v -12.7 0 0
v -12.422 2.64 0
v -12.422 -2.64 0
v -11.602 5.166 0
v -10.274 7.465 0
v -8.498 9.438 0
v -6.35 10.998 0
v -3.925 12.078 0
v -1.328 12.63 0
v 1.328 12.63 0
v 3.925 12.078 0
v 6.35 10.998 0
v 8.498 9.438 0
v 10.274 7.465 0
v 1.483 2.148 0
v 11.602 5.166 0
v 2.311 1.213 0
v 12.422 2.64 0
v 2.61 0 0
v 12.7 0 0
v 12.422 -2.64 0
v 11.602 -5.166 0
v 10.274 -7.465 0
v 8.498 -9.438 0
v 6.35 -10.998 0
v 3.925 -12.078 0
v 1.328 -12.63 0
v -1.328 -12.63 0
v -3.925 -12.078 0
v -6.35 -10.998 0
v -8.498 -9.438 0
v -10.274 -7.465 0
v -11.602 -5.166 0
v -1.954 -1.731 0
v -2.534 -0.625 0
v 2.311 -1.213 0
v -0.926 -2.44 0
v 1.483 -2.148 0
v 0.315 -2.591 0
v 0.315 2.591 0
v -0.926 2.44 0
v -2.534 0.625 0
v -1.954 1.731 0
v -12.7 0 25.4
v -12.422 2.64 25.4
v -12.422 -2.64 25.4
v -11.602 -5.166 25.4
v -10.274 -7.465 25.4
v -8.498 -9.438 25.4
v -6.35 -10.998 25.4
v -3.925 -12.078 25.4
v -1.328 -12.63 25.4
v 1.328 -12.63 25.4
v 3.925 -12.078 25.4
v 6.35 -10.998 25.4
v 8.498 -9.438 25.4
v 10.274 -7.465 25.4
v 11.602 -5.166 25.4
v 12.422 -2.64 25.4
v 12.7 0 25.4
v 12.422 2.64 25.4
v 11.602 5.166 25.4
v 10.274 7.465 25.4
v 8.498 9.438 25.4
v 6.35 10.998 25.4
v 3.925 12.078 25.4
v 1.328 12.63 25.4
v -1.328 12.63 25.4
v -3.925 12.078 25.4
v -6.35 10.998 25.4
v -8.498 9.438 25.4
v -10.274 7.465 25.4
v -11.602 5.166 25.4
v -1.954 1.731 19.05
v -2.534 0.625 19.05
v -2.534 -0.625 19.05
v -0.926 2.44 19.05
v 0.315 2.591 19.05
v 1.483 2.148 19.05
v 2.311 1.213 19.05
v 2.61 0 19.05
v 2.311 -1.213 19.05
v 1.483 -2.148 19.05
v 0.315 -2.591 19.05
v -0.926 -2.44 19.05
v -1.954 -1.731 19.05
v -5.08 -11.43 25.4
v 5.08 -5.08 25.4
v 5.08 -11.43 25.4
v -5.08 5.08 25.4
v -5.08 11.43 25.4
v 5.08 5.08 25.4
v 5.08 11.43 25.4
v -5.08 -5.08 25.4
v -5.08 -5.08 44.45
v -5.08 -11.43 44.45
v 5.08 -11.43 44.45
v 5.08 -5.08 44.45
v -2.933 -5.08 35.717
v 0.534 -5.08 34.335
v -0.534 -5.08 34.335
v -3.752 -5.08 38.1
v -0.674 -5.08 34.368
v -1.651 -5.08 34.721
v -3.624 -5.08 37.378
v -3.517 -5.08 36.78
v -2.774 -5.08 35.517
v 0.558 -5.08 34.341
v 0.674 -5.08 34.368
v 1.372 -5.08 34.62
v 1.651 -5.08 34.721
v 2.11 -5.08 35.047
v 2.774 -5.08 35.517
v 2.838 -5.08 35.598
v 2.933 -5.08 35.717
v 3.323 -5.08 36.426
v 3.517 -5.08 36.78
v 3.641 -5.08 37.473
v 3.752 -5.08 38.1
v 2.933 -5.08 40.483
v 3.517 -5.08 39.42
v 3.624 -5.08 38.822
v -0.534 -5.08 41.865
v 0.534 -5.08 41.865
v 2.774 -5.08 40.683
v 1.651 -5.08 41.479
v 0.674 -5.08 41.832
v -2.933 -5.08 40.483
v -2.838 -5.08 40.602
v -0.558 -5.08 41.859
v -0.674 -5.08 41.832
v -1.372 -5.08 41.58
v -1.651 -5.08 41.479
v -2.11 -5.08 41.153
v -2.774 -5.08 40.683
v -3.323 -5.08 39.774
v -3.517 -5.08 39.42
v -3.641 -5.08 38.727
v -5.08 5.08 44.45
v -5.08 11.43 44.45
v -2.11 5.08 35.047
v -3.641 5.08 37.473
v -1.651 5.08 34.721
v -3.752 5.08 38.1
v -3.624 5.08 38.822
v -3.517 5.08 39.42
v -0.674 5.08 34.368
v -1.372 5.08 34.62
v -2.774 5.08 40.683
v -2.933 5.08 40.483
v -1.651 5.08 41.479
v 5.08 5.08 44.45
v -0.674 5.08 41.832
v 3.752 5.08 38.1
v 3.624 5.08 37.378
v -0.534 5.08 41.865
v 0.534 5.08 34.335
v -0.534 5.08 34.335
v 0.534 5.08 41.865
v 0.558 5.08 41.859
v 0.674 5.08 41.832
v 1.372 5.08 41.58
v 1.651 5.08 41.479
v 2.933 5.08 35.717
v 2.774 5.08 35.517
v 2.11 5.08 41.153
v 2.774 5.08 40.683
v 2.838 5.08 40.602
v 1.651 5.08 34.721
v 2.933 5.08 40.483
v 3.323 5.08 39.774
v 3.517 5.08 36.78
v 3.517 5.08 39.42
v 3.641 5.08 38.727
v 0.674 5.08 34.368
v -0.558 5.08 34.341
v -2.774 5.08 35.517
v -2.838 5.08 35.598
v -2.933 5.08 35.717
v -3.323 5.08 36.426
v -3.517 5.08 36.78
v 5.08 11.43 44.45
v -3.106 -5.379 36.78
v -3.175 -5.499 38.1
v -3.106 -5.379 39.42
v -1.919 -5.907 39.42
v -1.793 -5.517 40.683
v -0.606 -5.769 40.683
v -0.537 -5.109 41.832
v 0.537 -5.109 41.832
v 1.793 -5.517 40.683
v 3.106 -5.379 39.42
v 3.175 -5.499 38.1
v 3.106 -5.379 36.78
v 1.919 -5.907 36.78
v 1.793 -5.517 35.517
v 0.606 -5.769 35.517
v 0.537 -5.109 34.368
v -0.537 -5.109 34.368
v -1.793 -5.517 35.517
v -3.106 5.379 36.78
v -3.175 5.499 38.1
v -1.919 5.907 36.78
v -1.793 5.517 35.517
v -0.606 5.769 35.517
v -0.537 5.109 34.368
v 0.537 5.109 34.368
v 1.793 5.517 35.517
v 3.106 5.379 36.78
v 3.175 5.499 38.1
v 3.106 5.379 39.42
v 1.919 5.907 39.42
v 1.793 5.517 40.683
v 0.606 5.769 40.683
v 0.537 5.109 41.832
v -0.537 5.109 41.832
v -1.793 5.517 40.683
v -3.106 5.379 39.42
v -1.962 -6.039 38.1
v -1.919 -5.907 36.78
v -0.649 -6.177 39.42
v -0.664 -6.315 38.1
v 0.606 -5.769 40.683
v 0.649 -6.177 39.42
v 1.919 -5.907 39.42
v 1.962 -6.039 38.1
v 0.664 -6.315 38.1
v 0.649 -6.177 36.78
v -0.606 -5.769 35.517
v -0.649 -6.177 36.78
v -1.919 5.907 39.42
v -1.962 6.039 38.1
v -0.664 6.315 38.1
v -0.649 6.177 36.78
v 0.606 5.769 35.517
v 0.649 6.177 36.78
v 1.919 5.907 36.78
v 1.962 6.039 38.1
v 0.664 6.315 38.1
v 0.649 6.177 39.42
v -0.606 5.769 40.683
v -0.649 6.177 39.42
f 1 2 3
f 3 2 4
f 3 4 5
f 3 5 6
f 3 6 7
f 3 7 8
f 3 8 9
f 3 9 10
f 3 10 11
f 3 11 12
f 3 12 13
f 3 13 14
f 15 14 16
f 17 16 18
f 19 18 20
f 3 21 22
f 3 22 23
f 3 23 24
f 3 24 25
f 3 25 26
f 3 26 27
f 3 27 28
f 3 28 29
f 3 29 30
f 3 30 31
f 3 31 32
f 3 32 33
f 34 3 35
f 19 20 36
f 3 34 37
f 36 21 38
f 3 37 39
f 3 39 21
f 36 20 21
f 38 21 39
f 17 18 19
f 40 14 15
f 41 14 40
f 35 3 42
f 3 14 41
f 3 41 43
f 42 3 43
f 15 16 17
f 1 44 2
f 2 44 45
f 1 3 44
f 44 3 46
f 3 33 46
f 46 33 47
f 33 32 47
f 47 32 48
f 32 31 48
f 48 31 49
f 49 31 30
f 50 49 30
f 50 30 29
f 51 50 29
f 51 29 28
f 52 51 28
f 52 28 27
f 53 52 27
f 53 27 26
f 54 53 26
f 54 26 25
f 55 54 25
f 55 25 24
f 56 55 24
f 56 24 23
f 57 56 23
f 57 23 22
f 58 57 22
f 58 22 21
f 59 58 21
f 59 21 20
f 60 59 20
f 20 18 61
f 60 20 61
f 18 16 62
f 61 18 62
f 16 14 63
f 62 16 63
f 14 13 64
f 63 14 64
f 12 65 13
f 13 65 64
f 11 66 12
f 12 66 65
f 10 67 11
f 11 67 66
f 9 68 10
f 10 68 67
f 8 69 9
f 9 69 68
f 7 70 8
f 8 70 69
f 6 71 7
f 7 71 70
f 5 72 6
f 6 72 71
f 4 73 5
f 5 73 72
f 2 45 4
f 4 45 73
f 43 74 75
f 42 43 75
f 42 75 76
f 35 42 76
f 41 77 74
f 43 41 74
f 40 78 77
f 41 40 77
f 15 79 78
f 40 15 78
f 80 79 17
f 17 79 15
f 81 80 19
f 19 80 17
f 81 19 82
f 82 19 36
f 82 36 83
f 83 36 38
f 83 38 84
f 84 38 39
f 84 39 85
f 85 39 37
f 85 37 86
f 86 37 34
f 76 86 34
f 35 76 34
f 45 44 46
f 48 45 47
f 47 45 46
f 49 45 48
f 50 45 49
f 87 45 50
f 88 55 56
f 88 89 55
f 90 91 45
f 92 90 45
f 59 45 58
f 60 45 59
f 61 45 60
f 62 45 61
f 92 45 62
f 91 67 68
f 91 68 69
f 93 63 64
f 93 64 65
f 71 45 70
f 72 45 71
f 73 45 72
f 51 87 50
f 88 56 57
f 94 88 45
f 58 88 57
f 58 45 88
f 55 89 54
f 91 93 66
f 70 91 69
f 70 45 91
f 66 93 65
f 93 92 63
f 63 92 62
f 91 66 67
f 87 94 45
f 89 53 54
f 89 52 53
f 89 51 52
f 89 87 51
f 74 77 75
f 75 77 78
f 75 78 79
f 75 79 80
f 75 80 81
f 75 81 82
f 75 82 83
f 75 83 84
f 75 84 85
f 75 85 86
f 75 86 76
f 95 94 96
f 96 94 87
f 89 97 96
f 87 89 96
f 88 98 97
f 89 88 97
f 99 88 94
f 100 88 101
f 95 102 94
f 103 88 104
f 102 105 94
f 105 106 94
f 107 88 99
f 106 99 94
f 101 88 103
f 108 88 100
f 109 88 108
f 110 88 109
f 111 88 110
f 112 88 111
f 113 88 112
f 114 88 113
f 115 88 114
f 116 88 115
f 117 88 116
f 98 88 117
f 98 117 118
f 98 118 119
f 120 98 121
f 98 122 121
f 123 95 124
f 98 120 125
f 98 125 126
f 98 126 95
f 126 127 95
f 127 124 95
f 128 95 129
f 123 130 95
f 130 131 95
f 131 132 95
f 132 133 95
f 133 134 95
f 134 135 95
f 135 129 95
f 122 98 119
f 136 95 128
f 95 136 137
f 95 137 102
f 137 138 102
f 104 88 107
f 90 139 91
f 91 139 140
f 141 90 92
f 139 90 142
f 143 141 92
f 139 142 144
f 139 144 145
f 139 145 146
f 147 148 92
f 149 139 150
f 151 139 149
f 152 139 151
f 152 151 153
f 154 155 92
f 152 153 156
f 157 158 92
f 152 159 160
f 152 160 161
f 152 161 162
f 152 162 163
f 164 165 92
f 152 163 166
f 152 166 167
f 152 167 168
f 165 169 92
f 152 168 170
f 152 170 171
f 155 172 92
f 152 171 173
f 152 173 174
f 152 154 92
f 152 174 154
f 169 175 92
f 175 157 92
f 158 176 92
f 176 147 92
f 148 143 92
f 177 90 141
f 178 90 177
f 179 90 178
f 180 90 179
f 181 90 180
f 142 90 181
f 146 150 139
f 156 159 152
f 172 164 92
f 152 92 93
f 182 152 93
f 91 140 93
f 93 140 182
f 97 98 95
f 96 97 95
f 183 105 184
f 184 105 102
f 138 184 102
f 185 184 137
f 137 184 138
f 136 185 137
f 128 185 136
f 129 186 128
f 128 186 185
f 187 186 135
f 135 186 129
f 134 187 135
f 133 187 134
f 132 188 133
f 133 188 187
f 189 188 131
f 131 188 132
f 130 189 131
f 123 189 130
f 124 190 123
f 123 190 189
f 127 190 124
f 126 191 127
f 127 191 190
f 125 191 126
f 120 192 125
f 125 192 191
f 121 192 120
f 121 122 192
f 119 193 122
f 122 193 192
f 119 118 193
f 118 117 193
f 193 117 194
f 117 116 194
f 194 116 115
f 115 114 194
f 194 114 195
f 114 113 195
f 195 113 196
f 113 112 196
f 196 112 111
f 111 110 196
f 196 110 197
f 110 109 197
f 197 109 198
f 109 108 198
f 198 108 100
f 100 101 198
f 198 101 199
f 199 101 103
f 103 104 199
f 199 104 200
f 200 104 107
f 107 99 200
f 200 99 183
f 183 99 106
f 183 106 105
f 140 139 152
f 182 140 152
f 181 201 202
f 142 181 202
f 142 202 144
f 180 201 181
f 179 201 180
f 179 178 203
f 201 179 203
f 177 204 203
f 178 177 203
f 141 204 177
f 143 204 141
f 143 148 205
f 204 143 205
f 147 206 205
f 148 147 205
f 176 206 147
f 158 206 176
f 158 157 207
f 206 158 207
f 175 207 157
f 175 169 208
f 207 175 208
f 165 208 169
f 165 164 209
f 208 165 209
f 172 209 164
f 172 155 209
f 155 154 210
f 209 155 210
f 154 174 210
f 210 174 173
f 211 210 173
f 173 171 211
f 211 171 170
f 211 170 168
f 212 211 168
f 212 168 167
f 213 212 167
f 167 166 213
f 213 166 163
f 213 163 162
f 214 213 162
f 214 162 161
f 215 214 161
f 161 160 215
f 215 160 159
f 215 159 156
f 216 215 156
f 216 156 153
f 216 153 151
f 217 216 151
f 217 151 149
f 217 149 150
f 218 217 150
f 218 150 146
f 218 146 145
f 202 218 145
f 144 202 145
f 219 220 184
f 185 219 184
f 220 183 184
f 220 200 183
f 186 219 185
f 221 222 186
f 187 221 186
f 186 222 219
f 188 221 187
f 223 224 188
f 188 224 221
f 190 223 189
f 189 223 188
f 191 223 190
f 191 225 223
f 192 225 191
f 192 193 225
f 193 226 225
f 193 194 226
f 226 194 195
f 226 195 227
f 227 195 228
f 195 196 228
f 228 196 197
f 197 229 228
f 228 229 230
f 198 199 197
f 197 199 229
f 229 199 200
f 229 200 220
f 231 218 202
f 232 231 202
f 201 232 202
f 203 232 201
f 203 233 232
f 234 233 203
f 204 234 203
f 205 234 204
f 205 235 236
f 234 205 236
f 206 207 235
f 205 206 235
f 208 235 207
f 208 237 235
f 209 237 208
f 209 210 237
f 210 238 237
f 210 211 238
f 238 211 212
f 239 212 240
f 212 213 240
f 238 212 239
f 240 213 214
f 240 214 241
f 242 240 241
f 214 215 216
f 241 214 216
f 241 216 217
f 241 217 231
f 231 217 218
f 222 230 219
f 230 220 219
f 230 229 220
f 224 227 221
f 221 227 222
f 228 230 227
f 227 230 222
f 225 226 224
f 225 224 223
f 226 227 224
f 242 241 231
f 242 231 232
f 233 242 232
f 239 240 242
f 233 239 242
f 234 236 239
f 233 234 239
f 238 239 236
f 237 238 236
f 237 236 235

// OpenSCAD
bearing_diameter = 12.7;
internal_diameter = 2.61;

length_multiplier= 2;
thickness_multiplier = 0.5;

lm = length_multiplier;
tm = thickness_multiplier;

d=bearing_diameter;
id=internal_diameter;
r=0.5*d;
h = length_multiplier*d;
fs = 0.1*d;

difference(){
	cylinder(r=d, h=h, $fs=fs);
	translate([0,0,-1]){
		cylinder(r=id, h=1+h-tm*d, $fs=fs);
	}
}

module pillar(){
	translate([-0.8*r, .8*r, h]){
		cube([0.8*d, tm*d, 1.5*d]);

	}
}
module pillars(){
	pillar();
	mirror([0,1,0]){
		pillar();
	}
}
translate([0,0,0]){
	difference(){
		pillars();
		translate([0,0,h+1*d]){
			sphere(r=r, $fs=fs);
		}
	}
}
